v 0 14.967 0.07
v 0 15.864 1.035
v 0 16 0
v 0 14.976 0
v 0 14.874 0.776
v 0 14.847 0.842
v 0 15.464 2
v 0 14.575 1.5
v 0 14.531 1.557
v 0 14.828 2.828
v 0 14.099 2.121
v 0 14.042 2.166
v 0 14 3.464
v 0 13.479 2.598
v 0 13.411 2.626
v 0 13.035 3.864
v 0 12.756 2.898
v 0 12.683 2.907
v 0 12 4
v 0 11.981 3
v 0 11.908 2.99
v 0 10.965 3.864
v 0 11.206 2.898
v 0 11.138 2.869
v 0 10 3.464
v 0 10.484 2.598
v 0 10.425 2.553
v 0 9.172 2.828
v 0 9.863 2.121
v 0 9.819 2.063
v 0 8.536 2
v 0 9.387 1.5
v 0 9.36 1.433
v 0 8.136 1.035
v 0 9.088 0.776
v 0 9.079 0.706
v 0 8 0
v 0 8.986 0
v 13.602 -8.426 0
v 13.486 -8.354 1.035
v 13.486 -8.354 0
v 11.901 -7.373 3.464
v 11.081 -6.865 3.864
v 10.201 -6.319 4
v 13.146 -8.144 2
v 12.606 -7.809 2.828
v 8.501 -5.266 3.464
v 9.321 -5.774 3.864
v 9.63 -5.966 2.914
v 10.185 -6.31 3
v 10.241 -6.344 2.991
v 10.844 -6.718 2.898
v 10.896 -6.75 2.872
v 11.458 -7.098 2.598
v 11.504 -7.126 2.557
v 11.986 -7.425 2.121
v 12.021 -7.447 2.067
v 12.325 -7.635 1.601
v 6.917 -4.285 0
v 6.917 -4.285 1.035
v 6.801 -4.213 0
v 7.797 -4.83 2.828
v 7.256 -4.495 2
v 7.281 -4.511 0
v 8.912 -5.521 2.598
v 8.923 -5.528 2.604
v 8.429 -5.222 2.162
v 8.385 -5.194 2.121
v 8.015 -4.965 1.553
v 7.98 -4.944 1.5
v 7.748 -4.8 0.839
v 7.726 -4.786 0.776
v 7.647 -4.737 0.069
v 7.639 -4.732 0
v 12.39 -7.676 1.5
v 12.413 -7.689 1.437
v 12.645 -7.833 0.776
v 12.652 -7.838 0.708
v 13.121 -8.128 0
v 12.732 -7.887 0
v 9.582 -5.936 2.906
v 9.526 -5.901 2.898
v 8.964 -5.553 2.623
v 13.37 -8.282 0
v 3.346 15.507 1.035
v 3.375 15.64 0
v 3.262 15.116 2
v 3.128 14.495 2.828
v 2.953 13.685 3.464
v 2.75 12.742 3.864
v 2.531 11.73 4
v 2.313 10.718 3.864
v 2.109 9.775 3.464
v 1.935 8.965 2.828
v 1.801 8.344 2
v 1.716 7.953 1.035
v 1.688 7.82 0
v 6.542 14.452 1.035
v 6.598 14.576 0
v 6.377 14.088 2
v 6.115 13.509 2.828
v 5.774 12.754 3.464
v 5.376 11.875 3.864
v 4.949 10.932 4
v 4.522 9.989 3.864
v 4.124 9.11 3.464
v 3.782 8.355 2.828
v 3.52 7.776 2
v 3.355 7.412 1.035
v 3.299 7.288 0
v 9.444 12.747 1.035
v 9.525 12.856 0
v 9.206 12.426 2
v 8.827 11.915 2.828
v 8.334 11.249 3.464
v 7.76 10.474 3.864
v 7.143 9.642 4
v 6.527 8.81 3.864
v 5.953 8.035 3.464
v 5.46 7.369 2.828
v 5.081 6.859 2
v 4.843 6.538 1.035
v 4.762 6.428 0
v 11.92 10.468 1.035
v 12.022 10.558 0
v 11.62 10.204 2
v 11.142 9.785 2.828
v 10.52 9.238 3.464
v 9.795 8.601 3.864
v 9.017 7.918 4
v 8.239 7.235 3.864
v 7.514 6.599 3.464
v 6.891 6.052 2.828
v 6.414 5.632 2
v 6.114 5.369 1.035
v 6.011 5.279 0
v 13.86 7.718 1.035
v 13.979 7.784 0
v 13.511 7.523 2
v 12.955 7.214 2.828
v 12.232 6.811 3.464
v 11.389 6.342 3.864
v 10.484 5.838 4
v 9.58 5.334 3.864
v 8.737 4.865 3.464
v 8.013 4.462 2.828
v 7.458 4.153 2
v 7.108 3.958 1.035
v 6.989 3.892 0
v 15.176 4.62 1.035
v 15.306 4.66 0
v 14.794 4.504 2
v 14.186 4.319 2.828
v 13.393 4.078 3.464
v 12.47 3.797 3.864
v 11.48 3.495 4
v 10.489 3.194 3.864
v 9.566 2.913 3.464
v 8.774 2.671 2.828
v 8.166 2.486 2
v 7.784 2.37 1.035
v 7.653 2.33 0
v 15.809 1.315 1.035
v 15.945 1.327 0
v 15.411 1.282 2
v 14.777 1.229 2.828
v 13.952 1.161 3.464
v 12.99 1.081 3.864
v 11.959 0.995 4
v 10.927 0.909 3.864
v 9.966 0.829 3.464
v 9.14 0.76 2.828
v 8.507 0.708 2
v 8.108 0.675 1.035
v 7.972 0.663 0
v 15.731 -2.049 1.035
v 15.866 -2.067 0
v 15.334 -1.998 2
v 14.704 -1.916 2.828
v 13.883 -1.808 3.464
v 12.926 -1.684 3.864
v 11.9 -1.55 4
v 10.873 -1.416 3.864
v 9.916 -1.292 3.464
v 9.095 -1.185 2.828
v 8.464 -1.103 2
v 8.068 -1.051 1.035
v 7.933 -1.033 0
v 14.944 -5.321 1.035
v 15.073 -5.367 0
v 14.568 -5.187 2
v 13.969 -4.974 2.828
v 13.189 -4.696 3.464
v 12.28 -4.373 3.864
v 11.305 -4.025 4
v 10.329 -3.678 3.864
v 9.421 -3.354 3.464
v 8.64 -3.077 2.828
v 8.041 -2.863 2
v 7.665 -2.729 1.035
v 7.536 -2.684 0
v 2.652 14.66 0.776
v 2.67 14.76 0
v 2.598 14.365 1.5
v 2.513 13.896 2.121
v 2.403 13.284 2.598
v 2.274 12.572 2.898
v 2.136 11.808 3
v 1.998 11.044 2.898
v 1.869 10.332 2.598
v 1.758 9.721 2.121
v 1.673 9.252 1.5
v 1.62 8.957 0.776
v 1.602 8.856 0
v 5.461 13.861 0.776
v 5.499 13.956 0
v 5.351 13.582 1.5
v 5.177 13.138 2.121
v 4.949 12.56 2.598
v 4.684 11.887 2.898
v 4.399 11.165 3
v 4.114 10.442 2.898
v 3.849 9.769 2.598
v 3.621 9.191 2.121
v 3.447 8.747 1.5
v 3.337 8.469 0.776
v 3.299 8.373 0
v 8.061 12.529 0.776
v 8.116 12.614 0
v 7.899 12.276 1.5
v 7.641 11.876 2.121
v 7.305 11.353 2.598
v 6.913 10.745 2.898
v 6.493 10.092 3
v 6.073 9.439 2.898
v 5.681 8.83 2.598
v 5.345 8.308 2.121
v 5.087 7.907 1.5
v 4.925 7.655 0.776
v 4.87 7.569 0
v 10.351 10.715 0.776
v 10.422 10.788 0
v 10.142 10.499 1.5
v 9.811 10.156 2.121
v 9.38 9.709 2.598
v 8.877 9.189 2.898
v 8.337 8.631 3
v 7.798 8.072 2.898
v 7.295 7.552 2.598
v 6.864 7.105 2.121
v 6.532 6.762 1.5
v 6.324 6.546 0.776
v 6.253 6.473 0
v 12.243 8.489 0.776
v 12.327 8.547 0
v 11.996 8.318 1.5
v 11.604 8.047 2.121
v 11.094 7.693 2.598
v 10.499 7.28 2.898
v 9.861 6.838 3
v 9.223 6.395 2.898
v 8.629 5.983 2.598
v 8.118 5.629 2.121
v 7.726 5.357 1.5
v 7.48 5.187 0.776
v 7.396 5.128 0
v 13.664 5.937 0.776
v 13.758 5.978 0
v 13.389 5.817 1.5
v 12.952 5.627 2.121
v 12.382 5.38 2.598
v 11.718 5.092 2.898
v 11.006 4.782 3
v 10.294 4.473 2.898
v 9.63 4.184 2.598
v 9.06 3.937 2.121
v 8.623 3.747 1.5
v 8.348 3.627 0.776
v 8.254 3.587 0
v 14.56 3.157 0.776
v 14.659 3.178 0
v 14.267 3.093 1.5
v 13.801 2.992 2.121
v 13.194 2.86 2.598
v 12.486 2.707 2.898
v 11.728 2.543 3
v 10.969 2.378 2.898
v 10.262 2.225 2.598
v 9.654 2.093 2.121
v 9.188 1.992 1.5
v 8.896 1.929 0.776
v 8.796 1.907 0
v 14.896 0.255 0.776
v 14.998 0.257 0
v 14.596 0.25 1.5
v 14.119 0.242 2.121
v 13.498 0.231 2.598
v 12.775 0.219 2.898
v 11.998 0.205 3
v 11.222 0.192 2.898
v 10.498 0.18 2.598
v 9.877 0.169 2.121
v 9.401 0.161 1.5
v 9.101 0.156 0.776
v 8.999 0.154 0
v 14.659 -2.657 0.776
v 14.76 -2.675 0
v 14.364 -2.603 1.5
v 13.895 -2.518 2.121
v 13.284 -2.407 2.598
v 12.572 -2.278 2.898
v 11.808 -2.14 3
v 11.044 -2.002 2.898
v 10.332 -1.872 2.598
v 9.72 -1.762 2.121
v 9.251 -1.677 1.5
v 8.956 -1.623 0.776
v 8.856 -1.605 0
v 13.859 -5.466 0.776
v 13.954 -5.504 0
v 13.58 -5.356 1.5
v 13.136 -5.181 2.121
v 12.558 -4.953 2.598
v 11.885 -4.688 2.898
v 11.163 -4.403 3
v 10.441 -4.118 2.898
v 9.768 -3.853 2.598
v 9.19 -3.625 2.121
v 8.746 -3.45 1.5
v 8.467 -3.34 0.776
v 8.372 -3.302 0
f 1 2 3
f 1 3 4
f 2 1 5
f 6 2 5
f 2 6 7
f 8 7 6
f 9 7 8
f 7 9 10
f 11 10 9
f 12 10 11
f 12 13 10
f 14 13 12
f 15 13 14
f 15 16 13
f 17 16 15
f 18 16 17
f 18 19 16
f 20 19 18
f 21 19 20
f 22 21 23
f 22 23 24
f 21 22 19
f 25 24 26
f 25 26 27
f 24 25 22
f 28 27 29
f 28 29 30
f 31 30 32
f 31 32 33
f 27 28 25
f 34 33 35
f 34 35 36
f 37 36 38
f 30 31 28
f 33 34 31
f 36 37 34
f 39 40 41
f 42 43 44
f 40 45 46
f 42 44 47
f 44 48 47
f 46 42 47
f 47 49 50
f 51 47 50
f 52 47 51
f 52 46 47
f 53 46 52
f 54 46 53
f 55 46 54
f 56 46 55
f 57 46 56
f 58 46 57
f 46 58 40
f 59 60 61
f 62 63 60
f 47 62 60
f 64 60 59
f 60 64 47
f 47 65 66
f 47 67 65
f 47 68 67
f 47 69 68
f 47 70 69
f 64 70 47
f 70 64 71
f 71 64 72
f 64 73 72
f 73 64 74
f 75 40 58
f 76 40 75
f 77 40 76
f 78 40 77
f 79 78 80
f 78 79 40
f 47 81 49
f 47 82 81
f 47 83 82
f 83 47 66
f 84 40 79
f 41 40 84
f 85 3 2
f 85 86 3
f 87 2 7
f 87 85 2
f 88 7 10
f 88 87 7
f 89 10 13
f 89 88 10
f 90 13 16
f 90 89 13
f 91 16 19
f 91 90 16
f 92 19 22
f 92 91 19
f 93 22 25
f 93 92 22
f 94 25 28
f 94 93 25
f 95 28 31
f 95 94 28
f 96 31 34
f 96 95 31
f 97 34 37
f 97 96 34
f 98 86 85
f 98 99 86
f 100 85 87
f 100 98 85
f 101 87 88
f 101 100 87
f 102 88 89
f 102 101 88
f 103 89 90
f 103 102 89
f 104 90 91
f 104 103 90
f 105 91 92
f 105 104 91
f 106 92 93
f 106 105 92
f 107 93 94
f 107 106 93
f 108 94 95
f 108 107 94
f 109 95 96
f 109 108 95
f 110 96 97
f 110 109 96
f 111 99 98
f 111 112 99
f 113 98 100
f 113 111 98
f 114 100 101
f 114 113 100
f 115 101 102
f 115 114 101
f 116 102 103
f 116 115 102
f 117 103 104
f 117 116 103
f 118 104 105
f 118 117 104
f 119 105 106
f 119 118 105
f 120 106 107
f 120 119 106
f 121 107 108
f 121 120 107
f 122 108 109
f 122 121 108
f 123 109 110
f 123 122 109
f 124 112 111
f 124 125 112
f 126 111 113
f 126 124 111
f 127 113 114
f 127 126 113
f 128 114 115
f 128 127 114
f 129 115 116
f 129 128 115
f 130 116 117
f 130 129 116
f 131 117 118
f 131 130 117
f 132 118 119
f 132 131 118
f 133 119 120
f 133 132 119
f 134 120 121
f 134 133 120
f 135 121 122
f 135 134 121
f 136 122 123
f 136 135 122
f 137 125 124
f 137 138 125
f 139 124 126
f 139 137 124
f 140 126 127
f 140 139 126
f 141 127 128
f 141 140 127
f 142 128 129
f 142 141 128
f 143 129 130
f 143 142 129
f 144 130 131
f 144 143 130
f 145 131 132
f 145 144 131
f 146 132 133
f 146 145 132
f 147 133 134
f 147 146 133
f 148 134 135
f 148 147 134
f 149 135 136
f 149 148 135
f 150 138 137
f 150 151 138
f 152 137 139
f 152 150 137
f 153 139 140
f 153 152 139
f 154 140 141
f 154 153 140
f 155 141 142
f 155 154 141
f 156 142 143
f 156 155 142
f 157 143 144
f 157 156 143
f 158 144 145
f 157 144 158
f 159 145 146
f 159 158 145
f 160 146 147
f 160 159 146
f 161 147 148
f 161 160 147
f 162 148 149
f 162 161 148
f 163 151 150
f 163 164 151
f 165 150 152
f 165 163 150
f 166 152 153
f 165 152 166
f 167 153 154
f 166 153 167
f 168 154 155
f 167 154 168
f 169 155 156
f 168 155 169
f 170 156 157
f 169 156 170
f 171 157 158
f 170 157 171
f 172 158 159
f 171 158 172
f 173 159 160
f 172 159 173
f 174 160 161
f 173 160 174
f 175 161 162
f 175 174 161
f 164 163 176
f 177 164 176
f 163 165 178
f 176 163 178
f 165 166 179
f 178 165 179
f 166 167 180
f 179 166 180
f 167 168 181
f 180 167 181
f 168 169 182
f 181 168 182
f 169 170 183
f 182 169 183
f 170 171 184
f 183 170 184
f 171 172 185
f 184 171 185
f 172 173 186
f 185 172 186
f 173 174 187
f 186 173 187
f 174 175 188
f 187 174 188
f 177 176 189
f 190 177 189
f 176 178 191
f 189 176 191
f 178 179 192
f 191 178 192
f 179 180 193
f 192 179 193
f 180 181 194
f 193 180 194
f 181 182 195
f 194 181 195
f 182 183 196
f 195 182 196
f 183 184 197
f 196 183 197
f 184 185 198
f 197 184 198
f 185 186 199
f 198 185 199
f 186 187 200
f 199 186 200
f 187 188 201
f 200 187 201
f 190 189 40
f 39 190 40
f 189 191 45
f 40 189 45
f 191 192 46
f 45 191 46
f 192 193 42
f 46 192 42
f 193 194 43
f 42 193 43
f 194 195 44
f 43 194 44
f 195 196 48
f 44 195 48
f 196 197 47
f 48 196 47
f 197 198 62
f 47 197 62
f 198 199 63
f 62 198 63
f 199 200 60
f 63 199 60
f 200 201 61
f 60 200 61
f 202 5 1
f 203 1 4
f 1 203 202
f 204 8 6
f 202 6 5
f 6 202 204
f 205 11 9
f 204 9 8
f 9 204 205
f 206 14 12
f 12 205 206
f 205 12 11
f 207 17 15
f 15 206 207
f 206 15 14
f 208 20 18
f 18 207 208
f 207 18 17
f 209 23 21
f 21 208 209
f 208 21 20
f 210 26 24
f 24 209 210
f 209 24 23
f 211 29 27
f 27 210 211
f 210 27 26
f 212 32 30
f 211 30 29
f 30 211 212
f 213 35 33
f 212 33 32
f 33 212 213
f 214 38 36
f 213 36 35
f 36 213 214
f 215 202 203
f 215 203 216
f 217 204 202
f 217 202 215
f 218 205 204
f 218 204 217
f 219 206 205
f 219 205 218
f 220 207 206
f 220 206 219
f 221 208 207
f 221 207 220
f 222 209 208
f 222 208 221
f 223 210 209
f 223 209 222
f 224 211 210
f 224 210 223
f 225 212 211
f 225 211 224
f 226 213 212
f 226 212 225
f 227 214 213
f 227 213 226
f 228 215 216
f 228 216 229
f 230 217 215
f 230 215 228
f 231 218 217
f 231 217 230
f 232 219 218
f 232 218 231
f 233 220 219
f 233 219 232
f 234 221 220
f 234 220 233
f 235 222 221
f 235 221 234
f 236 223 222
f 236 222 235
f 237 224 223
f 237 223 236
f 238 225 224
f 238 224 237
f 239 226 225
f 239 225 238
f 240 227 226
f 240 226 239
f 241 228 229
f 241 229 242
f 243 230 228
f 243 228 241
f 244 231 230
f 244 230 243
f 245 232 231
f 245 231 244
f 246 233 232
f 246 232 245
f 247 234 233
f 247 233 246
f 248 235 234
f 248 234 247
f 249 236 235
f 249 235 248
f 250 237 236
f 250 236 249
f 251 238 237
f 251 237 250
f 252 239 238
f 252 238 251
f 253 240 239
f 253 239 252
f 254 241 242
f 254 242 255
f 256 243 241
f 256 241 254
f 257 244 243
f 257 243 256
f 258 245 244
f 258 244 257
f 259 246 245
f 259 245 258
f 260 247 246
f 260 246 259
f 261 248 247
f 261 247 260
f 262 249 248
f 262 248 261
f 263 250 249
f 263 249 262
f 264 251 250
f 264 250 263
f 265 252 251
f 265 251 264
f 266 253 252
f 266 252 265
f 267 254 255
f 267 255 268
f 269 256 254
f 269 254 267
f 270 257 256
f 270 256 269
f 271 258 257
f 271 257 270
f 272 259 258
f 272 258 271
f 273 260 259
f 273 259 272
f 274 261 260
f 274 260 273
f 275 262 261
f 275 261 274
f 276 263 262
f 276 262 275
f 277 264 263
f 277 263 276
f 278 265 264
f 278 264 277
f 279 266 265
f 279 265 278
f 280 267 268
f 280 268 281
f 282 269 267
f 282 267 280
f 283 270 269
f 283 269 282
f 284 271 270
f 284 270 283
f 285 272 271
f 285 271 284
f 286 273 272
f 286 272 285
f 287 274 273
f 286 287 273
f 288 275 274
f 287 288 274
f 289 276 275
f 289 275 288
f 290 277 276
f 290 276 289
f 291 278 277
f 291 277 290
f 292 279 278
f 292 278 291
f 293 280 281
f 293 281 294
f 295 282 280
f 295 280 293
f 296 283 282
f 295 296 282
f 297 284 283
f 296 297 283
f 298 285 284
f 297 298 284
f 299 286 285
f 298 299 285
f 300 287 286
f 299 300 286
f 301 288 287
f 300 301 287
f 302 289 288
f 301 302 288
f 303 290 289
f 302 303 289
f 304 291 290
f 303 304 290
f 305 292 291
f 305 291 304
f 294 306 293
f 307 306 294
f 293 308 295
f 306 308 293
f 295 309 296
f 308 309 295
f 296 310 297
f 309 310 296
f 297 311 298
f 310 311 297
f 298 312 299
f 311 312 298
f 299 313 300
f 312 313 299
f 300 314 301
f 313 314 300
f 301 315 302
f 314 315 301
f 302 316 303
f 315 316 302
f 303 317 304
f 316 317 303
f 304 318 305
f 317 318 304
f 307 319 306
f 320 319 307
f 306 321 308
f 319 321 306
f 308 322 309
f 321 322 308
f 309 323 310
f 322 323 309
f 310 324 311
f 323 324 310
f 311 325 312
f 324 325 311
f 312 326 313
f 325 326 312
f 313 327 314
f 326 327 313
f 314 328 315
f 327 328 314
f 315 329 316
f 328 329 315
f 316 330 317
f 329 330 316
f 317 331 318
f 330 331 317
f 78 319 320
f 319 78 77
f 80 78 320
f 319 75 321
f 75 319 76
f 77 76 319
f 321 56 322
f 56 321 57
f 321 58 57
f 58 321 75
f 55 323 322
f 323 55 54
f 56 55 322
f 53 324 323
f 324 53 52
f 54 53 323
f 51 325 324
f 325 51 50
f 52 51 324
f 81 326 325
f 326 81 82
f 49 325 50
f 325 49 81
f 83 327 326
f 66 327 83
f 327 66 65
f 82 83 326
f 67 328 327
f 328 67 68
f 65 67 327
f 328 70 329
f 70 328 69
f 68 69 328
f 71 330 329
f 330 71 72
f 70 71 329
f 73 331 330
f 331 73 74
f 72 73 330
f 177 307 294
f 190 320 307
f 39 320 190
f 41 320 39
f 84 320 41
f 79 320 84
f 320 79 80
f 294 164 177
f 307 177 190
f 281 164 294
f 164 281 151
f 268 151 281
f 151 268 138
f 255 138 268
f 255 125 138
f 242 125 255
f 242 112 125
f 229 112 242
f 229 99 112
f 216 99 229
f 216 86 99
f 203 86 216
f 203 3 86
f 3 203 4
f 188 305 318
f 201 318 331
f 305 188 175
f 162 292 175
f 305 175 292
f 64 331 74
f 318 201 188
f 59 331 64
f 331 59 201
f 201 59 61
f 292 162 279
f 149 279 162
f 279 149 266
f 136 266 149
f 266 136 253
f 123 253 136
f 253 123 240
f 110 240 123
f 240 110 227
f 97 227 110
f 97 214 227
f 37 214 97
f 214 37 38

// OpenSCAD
// file: ../build_environments.scad
// build_environments.scad: modules to build level sections
//

module pool(diameter=10.0, wall_height=2.0, step_width=3.0, connections=[])
{
    difference() {
        union() {
        difference() {
            cylinder(h=0.5,r1=diameter+step_width,r2=diameter+step_width,$fn=48);
            translate([0,0,-0.1])
                cylinder(h=0.7,r1=diameter,r2=diameter,$fn=48);
        }
        difference() {
            cylinder(h=wall_height,r1=diameter+step_width+1.0,r2=diameter+step_width+1.0,$fn=48);
            translate([0,0,-0.1])
                cylinder(h=wall_height+0.2,r1=diameter+step_width,r2=diameter+step_width,$fn=48);
        }
        }
    
        for (c = connections)
        {
            rotate([0,90,0]) {
                angle = atan2(c[1],c[0]);
                rotate([-angle,0,0]) {
                    cylinder(h=diameter+5.0,r1=c[2],r2=c[2],$fn=48);
                }
            }
        }
    }
}

module straight(length=10.0, width=2.0, dy1=0.0, dy2=0.0, dz=0.0)
{
    dims = [0, 0, 0, 0, 0, (dz/length)];
    matrix = [
        [ 1, dims[0], dims[1], 0 ],
        [ dims[2], 1, dims[4], 0 ],
        [ dims[5], dims[3], 1, 0 ],
        [ 0, 0, 0, 1 ]
    ];
    multmatrix(matrix)
    difference() {
        translate([dy1,0,0])
        union() {
            rotate([0,90,0]) {
                difference() {
                    cylinder(h=(length-dy1-dy2),r1=width+1.0,r2=width+1.0,$fn=24);
                    translate([0,0,-0.1])
                        cylinder(h=(length-dy1-dy2+0.2),r1=width,r2=width,$fn=24);
                }
                difference() {
                    cylinder(h=1.0,r1=width+2.0,r2=width+2.0,$fn=24);
                    translate([0,0,-0.1])
                        cylinder(h=1.2,r1=width,r2=width,$fn=24);
                }
                translate([0,0,(length-dy1-dy2)-1.0]) {
                    difference() {
                        cylinder(h=1.0,r1=width+2.0,r2=width+2.0,$fn=24);
                        translate([0,0,-0.1])
                            cylinder(h=1.2,r1=width,r2=width,$fn=24);
                    }
                }
            }
        }
        translate([0,0,-(2*width+4.0)/2])
            cube([3*length,3*length,2*width+4.0],center=true);
    }
}

module curve(p0=[0,0], center=[0,0], dir=1, angle=0.0, width=2.0)
{
    radius = sqrt((p0[0]-center[0])*(p0[0]-center[0]) + (p0[1]-center[1])*(p0[1]-center[1]));
    if (dir == 0) {
        difference() {
            rotate([0,0,-90])
            difference() {
                rotate_extrude(angle = angle, convexity = 10, $fn=32)
                    translate([radius, 0, 0])
                        circle(r = width+1.0,$fn=24);
                rotate([0,0,-1.0])
                    rotate_extrude(angle = angle+2.0, convexity = 10, $fn=32)
                        translate([radius, 0, 0])
                            circle(r = width,$fn=24);
            }
            translate([0,0,-(2*width+4.0)/2])
                cube([5*radius,5*radius,2*width+4.0],center=true);
        }
    }
    else {
        difference() {
            rotate([0,0,90])
            difference() {
                rotate_extrude(angle = -angle, convexity = 10, $fn=32)
                    translate([radius, 0, 0])
                        circle(r = width+1.0,$fn=24);
                rotate([0,0,1.0])
                    rotate_extrude(angle = -angle-2.0, convexity = 10, $fn=32)
                        translate([radius, 0, 0])
                            circle(r = width,$fn=24);
            }
            translate([0,0,-(2*width+4.0)/2])
                cube([5*radius,5*radius,2*width+4.0],center=true);
        }
    }

}

// test pool
//pool(diameter=12.0000, wall_height=3.0000, step_width=3.0000, connections=[[0.0000,-26.0000,2.0000], [23.6074,0.0000,2.0000]]);

// test straight, slope
//straight(length=26.0000, width=2.0000, dy1=11.8322, dy2=6.7082, dz=0.0000);
//straight(length=29.1549, width=12.0000, dy1=0.0000, dy2=0.0000, dz=-15.0000);

// test curve
//curve(p0=[23.6074, 0.0000], center=[23.6074, 5.0000], dir=0, angle=60.1011, width=2.0000);
//curve(p0=[33.6426, 12.4219], center=[37.9771, 9.9295], dir=1, angle=120.4627, width=2.0000);
// main file
use <../build_environments.scad>;
curve(p0=[-29.0920, -70.5445], center=[-35.9234, -80.4102], dir=1, angle=121.7776, width=3.0000);
